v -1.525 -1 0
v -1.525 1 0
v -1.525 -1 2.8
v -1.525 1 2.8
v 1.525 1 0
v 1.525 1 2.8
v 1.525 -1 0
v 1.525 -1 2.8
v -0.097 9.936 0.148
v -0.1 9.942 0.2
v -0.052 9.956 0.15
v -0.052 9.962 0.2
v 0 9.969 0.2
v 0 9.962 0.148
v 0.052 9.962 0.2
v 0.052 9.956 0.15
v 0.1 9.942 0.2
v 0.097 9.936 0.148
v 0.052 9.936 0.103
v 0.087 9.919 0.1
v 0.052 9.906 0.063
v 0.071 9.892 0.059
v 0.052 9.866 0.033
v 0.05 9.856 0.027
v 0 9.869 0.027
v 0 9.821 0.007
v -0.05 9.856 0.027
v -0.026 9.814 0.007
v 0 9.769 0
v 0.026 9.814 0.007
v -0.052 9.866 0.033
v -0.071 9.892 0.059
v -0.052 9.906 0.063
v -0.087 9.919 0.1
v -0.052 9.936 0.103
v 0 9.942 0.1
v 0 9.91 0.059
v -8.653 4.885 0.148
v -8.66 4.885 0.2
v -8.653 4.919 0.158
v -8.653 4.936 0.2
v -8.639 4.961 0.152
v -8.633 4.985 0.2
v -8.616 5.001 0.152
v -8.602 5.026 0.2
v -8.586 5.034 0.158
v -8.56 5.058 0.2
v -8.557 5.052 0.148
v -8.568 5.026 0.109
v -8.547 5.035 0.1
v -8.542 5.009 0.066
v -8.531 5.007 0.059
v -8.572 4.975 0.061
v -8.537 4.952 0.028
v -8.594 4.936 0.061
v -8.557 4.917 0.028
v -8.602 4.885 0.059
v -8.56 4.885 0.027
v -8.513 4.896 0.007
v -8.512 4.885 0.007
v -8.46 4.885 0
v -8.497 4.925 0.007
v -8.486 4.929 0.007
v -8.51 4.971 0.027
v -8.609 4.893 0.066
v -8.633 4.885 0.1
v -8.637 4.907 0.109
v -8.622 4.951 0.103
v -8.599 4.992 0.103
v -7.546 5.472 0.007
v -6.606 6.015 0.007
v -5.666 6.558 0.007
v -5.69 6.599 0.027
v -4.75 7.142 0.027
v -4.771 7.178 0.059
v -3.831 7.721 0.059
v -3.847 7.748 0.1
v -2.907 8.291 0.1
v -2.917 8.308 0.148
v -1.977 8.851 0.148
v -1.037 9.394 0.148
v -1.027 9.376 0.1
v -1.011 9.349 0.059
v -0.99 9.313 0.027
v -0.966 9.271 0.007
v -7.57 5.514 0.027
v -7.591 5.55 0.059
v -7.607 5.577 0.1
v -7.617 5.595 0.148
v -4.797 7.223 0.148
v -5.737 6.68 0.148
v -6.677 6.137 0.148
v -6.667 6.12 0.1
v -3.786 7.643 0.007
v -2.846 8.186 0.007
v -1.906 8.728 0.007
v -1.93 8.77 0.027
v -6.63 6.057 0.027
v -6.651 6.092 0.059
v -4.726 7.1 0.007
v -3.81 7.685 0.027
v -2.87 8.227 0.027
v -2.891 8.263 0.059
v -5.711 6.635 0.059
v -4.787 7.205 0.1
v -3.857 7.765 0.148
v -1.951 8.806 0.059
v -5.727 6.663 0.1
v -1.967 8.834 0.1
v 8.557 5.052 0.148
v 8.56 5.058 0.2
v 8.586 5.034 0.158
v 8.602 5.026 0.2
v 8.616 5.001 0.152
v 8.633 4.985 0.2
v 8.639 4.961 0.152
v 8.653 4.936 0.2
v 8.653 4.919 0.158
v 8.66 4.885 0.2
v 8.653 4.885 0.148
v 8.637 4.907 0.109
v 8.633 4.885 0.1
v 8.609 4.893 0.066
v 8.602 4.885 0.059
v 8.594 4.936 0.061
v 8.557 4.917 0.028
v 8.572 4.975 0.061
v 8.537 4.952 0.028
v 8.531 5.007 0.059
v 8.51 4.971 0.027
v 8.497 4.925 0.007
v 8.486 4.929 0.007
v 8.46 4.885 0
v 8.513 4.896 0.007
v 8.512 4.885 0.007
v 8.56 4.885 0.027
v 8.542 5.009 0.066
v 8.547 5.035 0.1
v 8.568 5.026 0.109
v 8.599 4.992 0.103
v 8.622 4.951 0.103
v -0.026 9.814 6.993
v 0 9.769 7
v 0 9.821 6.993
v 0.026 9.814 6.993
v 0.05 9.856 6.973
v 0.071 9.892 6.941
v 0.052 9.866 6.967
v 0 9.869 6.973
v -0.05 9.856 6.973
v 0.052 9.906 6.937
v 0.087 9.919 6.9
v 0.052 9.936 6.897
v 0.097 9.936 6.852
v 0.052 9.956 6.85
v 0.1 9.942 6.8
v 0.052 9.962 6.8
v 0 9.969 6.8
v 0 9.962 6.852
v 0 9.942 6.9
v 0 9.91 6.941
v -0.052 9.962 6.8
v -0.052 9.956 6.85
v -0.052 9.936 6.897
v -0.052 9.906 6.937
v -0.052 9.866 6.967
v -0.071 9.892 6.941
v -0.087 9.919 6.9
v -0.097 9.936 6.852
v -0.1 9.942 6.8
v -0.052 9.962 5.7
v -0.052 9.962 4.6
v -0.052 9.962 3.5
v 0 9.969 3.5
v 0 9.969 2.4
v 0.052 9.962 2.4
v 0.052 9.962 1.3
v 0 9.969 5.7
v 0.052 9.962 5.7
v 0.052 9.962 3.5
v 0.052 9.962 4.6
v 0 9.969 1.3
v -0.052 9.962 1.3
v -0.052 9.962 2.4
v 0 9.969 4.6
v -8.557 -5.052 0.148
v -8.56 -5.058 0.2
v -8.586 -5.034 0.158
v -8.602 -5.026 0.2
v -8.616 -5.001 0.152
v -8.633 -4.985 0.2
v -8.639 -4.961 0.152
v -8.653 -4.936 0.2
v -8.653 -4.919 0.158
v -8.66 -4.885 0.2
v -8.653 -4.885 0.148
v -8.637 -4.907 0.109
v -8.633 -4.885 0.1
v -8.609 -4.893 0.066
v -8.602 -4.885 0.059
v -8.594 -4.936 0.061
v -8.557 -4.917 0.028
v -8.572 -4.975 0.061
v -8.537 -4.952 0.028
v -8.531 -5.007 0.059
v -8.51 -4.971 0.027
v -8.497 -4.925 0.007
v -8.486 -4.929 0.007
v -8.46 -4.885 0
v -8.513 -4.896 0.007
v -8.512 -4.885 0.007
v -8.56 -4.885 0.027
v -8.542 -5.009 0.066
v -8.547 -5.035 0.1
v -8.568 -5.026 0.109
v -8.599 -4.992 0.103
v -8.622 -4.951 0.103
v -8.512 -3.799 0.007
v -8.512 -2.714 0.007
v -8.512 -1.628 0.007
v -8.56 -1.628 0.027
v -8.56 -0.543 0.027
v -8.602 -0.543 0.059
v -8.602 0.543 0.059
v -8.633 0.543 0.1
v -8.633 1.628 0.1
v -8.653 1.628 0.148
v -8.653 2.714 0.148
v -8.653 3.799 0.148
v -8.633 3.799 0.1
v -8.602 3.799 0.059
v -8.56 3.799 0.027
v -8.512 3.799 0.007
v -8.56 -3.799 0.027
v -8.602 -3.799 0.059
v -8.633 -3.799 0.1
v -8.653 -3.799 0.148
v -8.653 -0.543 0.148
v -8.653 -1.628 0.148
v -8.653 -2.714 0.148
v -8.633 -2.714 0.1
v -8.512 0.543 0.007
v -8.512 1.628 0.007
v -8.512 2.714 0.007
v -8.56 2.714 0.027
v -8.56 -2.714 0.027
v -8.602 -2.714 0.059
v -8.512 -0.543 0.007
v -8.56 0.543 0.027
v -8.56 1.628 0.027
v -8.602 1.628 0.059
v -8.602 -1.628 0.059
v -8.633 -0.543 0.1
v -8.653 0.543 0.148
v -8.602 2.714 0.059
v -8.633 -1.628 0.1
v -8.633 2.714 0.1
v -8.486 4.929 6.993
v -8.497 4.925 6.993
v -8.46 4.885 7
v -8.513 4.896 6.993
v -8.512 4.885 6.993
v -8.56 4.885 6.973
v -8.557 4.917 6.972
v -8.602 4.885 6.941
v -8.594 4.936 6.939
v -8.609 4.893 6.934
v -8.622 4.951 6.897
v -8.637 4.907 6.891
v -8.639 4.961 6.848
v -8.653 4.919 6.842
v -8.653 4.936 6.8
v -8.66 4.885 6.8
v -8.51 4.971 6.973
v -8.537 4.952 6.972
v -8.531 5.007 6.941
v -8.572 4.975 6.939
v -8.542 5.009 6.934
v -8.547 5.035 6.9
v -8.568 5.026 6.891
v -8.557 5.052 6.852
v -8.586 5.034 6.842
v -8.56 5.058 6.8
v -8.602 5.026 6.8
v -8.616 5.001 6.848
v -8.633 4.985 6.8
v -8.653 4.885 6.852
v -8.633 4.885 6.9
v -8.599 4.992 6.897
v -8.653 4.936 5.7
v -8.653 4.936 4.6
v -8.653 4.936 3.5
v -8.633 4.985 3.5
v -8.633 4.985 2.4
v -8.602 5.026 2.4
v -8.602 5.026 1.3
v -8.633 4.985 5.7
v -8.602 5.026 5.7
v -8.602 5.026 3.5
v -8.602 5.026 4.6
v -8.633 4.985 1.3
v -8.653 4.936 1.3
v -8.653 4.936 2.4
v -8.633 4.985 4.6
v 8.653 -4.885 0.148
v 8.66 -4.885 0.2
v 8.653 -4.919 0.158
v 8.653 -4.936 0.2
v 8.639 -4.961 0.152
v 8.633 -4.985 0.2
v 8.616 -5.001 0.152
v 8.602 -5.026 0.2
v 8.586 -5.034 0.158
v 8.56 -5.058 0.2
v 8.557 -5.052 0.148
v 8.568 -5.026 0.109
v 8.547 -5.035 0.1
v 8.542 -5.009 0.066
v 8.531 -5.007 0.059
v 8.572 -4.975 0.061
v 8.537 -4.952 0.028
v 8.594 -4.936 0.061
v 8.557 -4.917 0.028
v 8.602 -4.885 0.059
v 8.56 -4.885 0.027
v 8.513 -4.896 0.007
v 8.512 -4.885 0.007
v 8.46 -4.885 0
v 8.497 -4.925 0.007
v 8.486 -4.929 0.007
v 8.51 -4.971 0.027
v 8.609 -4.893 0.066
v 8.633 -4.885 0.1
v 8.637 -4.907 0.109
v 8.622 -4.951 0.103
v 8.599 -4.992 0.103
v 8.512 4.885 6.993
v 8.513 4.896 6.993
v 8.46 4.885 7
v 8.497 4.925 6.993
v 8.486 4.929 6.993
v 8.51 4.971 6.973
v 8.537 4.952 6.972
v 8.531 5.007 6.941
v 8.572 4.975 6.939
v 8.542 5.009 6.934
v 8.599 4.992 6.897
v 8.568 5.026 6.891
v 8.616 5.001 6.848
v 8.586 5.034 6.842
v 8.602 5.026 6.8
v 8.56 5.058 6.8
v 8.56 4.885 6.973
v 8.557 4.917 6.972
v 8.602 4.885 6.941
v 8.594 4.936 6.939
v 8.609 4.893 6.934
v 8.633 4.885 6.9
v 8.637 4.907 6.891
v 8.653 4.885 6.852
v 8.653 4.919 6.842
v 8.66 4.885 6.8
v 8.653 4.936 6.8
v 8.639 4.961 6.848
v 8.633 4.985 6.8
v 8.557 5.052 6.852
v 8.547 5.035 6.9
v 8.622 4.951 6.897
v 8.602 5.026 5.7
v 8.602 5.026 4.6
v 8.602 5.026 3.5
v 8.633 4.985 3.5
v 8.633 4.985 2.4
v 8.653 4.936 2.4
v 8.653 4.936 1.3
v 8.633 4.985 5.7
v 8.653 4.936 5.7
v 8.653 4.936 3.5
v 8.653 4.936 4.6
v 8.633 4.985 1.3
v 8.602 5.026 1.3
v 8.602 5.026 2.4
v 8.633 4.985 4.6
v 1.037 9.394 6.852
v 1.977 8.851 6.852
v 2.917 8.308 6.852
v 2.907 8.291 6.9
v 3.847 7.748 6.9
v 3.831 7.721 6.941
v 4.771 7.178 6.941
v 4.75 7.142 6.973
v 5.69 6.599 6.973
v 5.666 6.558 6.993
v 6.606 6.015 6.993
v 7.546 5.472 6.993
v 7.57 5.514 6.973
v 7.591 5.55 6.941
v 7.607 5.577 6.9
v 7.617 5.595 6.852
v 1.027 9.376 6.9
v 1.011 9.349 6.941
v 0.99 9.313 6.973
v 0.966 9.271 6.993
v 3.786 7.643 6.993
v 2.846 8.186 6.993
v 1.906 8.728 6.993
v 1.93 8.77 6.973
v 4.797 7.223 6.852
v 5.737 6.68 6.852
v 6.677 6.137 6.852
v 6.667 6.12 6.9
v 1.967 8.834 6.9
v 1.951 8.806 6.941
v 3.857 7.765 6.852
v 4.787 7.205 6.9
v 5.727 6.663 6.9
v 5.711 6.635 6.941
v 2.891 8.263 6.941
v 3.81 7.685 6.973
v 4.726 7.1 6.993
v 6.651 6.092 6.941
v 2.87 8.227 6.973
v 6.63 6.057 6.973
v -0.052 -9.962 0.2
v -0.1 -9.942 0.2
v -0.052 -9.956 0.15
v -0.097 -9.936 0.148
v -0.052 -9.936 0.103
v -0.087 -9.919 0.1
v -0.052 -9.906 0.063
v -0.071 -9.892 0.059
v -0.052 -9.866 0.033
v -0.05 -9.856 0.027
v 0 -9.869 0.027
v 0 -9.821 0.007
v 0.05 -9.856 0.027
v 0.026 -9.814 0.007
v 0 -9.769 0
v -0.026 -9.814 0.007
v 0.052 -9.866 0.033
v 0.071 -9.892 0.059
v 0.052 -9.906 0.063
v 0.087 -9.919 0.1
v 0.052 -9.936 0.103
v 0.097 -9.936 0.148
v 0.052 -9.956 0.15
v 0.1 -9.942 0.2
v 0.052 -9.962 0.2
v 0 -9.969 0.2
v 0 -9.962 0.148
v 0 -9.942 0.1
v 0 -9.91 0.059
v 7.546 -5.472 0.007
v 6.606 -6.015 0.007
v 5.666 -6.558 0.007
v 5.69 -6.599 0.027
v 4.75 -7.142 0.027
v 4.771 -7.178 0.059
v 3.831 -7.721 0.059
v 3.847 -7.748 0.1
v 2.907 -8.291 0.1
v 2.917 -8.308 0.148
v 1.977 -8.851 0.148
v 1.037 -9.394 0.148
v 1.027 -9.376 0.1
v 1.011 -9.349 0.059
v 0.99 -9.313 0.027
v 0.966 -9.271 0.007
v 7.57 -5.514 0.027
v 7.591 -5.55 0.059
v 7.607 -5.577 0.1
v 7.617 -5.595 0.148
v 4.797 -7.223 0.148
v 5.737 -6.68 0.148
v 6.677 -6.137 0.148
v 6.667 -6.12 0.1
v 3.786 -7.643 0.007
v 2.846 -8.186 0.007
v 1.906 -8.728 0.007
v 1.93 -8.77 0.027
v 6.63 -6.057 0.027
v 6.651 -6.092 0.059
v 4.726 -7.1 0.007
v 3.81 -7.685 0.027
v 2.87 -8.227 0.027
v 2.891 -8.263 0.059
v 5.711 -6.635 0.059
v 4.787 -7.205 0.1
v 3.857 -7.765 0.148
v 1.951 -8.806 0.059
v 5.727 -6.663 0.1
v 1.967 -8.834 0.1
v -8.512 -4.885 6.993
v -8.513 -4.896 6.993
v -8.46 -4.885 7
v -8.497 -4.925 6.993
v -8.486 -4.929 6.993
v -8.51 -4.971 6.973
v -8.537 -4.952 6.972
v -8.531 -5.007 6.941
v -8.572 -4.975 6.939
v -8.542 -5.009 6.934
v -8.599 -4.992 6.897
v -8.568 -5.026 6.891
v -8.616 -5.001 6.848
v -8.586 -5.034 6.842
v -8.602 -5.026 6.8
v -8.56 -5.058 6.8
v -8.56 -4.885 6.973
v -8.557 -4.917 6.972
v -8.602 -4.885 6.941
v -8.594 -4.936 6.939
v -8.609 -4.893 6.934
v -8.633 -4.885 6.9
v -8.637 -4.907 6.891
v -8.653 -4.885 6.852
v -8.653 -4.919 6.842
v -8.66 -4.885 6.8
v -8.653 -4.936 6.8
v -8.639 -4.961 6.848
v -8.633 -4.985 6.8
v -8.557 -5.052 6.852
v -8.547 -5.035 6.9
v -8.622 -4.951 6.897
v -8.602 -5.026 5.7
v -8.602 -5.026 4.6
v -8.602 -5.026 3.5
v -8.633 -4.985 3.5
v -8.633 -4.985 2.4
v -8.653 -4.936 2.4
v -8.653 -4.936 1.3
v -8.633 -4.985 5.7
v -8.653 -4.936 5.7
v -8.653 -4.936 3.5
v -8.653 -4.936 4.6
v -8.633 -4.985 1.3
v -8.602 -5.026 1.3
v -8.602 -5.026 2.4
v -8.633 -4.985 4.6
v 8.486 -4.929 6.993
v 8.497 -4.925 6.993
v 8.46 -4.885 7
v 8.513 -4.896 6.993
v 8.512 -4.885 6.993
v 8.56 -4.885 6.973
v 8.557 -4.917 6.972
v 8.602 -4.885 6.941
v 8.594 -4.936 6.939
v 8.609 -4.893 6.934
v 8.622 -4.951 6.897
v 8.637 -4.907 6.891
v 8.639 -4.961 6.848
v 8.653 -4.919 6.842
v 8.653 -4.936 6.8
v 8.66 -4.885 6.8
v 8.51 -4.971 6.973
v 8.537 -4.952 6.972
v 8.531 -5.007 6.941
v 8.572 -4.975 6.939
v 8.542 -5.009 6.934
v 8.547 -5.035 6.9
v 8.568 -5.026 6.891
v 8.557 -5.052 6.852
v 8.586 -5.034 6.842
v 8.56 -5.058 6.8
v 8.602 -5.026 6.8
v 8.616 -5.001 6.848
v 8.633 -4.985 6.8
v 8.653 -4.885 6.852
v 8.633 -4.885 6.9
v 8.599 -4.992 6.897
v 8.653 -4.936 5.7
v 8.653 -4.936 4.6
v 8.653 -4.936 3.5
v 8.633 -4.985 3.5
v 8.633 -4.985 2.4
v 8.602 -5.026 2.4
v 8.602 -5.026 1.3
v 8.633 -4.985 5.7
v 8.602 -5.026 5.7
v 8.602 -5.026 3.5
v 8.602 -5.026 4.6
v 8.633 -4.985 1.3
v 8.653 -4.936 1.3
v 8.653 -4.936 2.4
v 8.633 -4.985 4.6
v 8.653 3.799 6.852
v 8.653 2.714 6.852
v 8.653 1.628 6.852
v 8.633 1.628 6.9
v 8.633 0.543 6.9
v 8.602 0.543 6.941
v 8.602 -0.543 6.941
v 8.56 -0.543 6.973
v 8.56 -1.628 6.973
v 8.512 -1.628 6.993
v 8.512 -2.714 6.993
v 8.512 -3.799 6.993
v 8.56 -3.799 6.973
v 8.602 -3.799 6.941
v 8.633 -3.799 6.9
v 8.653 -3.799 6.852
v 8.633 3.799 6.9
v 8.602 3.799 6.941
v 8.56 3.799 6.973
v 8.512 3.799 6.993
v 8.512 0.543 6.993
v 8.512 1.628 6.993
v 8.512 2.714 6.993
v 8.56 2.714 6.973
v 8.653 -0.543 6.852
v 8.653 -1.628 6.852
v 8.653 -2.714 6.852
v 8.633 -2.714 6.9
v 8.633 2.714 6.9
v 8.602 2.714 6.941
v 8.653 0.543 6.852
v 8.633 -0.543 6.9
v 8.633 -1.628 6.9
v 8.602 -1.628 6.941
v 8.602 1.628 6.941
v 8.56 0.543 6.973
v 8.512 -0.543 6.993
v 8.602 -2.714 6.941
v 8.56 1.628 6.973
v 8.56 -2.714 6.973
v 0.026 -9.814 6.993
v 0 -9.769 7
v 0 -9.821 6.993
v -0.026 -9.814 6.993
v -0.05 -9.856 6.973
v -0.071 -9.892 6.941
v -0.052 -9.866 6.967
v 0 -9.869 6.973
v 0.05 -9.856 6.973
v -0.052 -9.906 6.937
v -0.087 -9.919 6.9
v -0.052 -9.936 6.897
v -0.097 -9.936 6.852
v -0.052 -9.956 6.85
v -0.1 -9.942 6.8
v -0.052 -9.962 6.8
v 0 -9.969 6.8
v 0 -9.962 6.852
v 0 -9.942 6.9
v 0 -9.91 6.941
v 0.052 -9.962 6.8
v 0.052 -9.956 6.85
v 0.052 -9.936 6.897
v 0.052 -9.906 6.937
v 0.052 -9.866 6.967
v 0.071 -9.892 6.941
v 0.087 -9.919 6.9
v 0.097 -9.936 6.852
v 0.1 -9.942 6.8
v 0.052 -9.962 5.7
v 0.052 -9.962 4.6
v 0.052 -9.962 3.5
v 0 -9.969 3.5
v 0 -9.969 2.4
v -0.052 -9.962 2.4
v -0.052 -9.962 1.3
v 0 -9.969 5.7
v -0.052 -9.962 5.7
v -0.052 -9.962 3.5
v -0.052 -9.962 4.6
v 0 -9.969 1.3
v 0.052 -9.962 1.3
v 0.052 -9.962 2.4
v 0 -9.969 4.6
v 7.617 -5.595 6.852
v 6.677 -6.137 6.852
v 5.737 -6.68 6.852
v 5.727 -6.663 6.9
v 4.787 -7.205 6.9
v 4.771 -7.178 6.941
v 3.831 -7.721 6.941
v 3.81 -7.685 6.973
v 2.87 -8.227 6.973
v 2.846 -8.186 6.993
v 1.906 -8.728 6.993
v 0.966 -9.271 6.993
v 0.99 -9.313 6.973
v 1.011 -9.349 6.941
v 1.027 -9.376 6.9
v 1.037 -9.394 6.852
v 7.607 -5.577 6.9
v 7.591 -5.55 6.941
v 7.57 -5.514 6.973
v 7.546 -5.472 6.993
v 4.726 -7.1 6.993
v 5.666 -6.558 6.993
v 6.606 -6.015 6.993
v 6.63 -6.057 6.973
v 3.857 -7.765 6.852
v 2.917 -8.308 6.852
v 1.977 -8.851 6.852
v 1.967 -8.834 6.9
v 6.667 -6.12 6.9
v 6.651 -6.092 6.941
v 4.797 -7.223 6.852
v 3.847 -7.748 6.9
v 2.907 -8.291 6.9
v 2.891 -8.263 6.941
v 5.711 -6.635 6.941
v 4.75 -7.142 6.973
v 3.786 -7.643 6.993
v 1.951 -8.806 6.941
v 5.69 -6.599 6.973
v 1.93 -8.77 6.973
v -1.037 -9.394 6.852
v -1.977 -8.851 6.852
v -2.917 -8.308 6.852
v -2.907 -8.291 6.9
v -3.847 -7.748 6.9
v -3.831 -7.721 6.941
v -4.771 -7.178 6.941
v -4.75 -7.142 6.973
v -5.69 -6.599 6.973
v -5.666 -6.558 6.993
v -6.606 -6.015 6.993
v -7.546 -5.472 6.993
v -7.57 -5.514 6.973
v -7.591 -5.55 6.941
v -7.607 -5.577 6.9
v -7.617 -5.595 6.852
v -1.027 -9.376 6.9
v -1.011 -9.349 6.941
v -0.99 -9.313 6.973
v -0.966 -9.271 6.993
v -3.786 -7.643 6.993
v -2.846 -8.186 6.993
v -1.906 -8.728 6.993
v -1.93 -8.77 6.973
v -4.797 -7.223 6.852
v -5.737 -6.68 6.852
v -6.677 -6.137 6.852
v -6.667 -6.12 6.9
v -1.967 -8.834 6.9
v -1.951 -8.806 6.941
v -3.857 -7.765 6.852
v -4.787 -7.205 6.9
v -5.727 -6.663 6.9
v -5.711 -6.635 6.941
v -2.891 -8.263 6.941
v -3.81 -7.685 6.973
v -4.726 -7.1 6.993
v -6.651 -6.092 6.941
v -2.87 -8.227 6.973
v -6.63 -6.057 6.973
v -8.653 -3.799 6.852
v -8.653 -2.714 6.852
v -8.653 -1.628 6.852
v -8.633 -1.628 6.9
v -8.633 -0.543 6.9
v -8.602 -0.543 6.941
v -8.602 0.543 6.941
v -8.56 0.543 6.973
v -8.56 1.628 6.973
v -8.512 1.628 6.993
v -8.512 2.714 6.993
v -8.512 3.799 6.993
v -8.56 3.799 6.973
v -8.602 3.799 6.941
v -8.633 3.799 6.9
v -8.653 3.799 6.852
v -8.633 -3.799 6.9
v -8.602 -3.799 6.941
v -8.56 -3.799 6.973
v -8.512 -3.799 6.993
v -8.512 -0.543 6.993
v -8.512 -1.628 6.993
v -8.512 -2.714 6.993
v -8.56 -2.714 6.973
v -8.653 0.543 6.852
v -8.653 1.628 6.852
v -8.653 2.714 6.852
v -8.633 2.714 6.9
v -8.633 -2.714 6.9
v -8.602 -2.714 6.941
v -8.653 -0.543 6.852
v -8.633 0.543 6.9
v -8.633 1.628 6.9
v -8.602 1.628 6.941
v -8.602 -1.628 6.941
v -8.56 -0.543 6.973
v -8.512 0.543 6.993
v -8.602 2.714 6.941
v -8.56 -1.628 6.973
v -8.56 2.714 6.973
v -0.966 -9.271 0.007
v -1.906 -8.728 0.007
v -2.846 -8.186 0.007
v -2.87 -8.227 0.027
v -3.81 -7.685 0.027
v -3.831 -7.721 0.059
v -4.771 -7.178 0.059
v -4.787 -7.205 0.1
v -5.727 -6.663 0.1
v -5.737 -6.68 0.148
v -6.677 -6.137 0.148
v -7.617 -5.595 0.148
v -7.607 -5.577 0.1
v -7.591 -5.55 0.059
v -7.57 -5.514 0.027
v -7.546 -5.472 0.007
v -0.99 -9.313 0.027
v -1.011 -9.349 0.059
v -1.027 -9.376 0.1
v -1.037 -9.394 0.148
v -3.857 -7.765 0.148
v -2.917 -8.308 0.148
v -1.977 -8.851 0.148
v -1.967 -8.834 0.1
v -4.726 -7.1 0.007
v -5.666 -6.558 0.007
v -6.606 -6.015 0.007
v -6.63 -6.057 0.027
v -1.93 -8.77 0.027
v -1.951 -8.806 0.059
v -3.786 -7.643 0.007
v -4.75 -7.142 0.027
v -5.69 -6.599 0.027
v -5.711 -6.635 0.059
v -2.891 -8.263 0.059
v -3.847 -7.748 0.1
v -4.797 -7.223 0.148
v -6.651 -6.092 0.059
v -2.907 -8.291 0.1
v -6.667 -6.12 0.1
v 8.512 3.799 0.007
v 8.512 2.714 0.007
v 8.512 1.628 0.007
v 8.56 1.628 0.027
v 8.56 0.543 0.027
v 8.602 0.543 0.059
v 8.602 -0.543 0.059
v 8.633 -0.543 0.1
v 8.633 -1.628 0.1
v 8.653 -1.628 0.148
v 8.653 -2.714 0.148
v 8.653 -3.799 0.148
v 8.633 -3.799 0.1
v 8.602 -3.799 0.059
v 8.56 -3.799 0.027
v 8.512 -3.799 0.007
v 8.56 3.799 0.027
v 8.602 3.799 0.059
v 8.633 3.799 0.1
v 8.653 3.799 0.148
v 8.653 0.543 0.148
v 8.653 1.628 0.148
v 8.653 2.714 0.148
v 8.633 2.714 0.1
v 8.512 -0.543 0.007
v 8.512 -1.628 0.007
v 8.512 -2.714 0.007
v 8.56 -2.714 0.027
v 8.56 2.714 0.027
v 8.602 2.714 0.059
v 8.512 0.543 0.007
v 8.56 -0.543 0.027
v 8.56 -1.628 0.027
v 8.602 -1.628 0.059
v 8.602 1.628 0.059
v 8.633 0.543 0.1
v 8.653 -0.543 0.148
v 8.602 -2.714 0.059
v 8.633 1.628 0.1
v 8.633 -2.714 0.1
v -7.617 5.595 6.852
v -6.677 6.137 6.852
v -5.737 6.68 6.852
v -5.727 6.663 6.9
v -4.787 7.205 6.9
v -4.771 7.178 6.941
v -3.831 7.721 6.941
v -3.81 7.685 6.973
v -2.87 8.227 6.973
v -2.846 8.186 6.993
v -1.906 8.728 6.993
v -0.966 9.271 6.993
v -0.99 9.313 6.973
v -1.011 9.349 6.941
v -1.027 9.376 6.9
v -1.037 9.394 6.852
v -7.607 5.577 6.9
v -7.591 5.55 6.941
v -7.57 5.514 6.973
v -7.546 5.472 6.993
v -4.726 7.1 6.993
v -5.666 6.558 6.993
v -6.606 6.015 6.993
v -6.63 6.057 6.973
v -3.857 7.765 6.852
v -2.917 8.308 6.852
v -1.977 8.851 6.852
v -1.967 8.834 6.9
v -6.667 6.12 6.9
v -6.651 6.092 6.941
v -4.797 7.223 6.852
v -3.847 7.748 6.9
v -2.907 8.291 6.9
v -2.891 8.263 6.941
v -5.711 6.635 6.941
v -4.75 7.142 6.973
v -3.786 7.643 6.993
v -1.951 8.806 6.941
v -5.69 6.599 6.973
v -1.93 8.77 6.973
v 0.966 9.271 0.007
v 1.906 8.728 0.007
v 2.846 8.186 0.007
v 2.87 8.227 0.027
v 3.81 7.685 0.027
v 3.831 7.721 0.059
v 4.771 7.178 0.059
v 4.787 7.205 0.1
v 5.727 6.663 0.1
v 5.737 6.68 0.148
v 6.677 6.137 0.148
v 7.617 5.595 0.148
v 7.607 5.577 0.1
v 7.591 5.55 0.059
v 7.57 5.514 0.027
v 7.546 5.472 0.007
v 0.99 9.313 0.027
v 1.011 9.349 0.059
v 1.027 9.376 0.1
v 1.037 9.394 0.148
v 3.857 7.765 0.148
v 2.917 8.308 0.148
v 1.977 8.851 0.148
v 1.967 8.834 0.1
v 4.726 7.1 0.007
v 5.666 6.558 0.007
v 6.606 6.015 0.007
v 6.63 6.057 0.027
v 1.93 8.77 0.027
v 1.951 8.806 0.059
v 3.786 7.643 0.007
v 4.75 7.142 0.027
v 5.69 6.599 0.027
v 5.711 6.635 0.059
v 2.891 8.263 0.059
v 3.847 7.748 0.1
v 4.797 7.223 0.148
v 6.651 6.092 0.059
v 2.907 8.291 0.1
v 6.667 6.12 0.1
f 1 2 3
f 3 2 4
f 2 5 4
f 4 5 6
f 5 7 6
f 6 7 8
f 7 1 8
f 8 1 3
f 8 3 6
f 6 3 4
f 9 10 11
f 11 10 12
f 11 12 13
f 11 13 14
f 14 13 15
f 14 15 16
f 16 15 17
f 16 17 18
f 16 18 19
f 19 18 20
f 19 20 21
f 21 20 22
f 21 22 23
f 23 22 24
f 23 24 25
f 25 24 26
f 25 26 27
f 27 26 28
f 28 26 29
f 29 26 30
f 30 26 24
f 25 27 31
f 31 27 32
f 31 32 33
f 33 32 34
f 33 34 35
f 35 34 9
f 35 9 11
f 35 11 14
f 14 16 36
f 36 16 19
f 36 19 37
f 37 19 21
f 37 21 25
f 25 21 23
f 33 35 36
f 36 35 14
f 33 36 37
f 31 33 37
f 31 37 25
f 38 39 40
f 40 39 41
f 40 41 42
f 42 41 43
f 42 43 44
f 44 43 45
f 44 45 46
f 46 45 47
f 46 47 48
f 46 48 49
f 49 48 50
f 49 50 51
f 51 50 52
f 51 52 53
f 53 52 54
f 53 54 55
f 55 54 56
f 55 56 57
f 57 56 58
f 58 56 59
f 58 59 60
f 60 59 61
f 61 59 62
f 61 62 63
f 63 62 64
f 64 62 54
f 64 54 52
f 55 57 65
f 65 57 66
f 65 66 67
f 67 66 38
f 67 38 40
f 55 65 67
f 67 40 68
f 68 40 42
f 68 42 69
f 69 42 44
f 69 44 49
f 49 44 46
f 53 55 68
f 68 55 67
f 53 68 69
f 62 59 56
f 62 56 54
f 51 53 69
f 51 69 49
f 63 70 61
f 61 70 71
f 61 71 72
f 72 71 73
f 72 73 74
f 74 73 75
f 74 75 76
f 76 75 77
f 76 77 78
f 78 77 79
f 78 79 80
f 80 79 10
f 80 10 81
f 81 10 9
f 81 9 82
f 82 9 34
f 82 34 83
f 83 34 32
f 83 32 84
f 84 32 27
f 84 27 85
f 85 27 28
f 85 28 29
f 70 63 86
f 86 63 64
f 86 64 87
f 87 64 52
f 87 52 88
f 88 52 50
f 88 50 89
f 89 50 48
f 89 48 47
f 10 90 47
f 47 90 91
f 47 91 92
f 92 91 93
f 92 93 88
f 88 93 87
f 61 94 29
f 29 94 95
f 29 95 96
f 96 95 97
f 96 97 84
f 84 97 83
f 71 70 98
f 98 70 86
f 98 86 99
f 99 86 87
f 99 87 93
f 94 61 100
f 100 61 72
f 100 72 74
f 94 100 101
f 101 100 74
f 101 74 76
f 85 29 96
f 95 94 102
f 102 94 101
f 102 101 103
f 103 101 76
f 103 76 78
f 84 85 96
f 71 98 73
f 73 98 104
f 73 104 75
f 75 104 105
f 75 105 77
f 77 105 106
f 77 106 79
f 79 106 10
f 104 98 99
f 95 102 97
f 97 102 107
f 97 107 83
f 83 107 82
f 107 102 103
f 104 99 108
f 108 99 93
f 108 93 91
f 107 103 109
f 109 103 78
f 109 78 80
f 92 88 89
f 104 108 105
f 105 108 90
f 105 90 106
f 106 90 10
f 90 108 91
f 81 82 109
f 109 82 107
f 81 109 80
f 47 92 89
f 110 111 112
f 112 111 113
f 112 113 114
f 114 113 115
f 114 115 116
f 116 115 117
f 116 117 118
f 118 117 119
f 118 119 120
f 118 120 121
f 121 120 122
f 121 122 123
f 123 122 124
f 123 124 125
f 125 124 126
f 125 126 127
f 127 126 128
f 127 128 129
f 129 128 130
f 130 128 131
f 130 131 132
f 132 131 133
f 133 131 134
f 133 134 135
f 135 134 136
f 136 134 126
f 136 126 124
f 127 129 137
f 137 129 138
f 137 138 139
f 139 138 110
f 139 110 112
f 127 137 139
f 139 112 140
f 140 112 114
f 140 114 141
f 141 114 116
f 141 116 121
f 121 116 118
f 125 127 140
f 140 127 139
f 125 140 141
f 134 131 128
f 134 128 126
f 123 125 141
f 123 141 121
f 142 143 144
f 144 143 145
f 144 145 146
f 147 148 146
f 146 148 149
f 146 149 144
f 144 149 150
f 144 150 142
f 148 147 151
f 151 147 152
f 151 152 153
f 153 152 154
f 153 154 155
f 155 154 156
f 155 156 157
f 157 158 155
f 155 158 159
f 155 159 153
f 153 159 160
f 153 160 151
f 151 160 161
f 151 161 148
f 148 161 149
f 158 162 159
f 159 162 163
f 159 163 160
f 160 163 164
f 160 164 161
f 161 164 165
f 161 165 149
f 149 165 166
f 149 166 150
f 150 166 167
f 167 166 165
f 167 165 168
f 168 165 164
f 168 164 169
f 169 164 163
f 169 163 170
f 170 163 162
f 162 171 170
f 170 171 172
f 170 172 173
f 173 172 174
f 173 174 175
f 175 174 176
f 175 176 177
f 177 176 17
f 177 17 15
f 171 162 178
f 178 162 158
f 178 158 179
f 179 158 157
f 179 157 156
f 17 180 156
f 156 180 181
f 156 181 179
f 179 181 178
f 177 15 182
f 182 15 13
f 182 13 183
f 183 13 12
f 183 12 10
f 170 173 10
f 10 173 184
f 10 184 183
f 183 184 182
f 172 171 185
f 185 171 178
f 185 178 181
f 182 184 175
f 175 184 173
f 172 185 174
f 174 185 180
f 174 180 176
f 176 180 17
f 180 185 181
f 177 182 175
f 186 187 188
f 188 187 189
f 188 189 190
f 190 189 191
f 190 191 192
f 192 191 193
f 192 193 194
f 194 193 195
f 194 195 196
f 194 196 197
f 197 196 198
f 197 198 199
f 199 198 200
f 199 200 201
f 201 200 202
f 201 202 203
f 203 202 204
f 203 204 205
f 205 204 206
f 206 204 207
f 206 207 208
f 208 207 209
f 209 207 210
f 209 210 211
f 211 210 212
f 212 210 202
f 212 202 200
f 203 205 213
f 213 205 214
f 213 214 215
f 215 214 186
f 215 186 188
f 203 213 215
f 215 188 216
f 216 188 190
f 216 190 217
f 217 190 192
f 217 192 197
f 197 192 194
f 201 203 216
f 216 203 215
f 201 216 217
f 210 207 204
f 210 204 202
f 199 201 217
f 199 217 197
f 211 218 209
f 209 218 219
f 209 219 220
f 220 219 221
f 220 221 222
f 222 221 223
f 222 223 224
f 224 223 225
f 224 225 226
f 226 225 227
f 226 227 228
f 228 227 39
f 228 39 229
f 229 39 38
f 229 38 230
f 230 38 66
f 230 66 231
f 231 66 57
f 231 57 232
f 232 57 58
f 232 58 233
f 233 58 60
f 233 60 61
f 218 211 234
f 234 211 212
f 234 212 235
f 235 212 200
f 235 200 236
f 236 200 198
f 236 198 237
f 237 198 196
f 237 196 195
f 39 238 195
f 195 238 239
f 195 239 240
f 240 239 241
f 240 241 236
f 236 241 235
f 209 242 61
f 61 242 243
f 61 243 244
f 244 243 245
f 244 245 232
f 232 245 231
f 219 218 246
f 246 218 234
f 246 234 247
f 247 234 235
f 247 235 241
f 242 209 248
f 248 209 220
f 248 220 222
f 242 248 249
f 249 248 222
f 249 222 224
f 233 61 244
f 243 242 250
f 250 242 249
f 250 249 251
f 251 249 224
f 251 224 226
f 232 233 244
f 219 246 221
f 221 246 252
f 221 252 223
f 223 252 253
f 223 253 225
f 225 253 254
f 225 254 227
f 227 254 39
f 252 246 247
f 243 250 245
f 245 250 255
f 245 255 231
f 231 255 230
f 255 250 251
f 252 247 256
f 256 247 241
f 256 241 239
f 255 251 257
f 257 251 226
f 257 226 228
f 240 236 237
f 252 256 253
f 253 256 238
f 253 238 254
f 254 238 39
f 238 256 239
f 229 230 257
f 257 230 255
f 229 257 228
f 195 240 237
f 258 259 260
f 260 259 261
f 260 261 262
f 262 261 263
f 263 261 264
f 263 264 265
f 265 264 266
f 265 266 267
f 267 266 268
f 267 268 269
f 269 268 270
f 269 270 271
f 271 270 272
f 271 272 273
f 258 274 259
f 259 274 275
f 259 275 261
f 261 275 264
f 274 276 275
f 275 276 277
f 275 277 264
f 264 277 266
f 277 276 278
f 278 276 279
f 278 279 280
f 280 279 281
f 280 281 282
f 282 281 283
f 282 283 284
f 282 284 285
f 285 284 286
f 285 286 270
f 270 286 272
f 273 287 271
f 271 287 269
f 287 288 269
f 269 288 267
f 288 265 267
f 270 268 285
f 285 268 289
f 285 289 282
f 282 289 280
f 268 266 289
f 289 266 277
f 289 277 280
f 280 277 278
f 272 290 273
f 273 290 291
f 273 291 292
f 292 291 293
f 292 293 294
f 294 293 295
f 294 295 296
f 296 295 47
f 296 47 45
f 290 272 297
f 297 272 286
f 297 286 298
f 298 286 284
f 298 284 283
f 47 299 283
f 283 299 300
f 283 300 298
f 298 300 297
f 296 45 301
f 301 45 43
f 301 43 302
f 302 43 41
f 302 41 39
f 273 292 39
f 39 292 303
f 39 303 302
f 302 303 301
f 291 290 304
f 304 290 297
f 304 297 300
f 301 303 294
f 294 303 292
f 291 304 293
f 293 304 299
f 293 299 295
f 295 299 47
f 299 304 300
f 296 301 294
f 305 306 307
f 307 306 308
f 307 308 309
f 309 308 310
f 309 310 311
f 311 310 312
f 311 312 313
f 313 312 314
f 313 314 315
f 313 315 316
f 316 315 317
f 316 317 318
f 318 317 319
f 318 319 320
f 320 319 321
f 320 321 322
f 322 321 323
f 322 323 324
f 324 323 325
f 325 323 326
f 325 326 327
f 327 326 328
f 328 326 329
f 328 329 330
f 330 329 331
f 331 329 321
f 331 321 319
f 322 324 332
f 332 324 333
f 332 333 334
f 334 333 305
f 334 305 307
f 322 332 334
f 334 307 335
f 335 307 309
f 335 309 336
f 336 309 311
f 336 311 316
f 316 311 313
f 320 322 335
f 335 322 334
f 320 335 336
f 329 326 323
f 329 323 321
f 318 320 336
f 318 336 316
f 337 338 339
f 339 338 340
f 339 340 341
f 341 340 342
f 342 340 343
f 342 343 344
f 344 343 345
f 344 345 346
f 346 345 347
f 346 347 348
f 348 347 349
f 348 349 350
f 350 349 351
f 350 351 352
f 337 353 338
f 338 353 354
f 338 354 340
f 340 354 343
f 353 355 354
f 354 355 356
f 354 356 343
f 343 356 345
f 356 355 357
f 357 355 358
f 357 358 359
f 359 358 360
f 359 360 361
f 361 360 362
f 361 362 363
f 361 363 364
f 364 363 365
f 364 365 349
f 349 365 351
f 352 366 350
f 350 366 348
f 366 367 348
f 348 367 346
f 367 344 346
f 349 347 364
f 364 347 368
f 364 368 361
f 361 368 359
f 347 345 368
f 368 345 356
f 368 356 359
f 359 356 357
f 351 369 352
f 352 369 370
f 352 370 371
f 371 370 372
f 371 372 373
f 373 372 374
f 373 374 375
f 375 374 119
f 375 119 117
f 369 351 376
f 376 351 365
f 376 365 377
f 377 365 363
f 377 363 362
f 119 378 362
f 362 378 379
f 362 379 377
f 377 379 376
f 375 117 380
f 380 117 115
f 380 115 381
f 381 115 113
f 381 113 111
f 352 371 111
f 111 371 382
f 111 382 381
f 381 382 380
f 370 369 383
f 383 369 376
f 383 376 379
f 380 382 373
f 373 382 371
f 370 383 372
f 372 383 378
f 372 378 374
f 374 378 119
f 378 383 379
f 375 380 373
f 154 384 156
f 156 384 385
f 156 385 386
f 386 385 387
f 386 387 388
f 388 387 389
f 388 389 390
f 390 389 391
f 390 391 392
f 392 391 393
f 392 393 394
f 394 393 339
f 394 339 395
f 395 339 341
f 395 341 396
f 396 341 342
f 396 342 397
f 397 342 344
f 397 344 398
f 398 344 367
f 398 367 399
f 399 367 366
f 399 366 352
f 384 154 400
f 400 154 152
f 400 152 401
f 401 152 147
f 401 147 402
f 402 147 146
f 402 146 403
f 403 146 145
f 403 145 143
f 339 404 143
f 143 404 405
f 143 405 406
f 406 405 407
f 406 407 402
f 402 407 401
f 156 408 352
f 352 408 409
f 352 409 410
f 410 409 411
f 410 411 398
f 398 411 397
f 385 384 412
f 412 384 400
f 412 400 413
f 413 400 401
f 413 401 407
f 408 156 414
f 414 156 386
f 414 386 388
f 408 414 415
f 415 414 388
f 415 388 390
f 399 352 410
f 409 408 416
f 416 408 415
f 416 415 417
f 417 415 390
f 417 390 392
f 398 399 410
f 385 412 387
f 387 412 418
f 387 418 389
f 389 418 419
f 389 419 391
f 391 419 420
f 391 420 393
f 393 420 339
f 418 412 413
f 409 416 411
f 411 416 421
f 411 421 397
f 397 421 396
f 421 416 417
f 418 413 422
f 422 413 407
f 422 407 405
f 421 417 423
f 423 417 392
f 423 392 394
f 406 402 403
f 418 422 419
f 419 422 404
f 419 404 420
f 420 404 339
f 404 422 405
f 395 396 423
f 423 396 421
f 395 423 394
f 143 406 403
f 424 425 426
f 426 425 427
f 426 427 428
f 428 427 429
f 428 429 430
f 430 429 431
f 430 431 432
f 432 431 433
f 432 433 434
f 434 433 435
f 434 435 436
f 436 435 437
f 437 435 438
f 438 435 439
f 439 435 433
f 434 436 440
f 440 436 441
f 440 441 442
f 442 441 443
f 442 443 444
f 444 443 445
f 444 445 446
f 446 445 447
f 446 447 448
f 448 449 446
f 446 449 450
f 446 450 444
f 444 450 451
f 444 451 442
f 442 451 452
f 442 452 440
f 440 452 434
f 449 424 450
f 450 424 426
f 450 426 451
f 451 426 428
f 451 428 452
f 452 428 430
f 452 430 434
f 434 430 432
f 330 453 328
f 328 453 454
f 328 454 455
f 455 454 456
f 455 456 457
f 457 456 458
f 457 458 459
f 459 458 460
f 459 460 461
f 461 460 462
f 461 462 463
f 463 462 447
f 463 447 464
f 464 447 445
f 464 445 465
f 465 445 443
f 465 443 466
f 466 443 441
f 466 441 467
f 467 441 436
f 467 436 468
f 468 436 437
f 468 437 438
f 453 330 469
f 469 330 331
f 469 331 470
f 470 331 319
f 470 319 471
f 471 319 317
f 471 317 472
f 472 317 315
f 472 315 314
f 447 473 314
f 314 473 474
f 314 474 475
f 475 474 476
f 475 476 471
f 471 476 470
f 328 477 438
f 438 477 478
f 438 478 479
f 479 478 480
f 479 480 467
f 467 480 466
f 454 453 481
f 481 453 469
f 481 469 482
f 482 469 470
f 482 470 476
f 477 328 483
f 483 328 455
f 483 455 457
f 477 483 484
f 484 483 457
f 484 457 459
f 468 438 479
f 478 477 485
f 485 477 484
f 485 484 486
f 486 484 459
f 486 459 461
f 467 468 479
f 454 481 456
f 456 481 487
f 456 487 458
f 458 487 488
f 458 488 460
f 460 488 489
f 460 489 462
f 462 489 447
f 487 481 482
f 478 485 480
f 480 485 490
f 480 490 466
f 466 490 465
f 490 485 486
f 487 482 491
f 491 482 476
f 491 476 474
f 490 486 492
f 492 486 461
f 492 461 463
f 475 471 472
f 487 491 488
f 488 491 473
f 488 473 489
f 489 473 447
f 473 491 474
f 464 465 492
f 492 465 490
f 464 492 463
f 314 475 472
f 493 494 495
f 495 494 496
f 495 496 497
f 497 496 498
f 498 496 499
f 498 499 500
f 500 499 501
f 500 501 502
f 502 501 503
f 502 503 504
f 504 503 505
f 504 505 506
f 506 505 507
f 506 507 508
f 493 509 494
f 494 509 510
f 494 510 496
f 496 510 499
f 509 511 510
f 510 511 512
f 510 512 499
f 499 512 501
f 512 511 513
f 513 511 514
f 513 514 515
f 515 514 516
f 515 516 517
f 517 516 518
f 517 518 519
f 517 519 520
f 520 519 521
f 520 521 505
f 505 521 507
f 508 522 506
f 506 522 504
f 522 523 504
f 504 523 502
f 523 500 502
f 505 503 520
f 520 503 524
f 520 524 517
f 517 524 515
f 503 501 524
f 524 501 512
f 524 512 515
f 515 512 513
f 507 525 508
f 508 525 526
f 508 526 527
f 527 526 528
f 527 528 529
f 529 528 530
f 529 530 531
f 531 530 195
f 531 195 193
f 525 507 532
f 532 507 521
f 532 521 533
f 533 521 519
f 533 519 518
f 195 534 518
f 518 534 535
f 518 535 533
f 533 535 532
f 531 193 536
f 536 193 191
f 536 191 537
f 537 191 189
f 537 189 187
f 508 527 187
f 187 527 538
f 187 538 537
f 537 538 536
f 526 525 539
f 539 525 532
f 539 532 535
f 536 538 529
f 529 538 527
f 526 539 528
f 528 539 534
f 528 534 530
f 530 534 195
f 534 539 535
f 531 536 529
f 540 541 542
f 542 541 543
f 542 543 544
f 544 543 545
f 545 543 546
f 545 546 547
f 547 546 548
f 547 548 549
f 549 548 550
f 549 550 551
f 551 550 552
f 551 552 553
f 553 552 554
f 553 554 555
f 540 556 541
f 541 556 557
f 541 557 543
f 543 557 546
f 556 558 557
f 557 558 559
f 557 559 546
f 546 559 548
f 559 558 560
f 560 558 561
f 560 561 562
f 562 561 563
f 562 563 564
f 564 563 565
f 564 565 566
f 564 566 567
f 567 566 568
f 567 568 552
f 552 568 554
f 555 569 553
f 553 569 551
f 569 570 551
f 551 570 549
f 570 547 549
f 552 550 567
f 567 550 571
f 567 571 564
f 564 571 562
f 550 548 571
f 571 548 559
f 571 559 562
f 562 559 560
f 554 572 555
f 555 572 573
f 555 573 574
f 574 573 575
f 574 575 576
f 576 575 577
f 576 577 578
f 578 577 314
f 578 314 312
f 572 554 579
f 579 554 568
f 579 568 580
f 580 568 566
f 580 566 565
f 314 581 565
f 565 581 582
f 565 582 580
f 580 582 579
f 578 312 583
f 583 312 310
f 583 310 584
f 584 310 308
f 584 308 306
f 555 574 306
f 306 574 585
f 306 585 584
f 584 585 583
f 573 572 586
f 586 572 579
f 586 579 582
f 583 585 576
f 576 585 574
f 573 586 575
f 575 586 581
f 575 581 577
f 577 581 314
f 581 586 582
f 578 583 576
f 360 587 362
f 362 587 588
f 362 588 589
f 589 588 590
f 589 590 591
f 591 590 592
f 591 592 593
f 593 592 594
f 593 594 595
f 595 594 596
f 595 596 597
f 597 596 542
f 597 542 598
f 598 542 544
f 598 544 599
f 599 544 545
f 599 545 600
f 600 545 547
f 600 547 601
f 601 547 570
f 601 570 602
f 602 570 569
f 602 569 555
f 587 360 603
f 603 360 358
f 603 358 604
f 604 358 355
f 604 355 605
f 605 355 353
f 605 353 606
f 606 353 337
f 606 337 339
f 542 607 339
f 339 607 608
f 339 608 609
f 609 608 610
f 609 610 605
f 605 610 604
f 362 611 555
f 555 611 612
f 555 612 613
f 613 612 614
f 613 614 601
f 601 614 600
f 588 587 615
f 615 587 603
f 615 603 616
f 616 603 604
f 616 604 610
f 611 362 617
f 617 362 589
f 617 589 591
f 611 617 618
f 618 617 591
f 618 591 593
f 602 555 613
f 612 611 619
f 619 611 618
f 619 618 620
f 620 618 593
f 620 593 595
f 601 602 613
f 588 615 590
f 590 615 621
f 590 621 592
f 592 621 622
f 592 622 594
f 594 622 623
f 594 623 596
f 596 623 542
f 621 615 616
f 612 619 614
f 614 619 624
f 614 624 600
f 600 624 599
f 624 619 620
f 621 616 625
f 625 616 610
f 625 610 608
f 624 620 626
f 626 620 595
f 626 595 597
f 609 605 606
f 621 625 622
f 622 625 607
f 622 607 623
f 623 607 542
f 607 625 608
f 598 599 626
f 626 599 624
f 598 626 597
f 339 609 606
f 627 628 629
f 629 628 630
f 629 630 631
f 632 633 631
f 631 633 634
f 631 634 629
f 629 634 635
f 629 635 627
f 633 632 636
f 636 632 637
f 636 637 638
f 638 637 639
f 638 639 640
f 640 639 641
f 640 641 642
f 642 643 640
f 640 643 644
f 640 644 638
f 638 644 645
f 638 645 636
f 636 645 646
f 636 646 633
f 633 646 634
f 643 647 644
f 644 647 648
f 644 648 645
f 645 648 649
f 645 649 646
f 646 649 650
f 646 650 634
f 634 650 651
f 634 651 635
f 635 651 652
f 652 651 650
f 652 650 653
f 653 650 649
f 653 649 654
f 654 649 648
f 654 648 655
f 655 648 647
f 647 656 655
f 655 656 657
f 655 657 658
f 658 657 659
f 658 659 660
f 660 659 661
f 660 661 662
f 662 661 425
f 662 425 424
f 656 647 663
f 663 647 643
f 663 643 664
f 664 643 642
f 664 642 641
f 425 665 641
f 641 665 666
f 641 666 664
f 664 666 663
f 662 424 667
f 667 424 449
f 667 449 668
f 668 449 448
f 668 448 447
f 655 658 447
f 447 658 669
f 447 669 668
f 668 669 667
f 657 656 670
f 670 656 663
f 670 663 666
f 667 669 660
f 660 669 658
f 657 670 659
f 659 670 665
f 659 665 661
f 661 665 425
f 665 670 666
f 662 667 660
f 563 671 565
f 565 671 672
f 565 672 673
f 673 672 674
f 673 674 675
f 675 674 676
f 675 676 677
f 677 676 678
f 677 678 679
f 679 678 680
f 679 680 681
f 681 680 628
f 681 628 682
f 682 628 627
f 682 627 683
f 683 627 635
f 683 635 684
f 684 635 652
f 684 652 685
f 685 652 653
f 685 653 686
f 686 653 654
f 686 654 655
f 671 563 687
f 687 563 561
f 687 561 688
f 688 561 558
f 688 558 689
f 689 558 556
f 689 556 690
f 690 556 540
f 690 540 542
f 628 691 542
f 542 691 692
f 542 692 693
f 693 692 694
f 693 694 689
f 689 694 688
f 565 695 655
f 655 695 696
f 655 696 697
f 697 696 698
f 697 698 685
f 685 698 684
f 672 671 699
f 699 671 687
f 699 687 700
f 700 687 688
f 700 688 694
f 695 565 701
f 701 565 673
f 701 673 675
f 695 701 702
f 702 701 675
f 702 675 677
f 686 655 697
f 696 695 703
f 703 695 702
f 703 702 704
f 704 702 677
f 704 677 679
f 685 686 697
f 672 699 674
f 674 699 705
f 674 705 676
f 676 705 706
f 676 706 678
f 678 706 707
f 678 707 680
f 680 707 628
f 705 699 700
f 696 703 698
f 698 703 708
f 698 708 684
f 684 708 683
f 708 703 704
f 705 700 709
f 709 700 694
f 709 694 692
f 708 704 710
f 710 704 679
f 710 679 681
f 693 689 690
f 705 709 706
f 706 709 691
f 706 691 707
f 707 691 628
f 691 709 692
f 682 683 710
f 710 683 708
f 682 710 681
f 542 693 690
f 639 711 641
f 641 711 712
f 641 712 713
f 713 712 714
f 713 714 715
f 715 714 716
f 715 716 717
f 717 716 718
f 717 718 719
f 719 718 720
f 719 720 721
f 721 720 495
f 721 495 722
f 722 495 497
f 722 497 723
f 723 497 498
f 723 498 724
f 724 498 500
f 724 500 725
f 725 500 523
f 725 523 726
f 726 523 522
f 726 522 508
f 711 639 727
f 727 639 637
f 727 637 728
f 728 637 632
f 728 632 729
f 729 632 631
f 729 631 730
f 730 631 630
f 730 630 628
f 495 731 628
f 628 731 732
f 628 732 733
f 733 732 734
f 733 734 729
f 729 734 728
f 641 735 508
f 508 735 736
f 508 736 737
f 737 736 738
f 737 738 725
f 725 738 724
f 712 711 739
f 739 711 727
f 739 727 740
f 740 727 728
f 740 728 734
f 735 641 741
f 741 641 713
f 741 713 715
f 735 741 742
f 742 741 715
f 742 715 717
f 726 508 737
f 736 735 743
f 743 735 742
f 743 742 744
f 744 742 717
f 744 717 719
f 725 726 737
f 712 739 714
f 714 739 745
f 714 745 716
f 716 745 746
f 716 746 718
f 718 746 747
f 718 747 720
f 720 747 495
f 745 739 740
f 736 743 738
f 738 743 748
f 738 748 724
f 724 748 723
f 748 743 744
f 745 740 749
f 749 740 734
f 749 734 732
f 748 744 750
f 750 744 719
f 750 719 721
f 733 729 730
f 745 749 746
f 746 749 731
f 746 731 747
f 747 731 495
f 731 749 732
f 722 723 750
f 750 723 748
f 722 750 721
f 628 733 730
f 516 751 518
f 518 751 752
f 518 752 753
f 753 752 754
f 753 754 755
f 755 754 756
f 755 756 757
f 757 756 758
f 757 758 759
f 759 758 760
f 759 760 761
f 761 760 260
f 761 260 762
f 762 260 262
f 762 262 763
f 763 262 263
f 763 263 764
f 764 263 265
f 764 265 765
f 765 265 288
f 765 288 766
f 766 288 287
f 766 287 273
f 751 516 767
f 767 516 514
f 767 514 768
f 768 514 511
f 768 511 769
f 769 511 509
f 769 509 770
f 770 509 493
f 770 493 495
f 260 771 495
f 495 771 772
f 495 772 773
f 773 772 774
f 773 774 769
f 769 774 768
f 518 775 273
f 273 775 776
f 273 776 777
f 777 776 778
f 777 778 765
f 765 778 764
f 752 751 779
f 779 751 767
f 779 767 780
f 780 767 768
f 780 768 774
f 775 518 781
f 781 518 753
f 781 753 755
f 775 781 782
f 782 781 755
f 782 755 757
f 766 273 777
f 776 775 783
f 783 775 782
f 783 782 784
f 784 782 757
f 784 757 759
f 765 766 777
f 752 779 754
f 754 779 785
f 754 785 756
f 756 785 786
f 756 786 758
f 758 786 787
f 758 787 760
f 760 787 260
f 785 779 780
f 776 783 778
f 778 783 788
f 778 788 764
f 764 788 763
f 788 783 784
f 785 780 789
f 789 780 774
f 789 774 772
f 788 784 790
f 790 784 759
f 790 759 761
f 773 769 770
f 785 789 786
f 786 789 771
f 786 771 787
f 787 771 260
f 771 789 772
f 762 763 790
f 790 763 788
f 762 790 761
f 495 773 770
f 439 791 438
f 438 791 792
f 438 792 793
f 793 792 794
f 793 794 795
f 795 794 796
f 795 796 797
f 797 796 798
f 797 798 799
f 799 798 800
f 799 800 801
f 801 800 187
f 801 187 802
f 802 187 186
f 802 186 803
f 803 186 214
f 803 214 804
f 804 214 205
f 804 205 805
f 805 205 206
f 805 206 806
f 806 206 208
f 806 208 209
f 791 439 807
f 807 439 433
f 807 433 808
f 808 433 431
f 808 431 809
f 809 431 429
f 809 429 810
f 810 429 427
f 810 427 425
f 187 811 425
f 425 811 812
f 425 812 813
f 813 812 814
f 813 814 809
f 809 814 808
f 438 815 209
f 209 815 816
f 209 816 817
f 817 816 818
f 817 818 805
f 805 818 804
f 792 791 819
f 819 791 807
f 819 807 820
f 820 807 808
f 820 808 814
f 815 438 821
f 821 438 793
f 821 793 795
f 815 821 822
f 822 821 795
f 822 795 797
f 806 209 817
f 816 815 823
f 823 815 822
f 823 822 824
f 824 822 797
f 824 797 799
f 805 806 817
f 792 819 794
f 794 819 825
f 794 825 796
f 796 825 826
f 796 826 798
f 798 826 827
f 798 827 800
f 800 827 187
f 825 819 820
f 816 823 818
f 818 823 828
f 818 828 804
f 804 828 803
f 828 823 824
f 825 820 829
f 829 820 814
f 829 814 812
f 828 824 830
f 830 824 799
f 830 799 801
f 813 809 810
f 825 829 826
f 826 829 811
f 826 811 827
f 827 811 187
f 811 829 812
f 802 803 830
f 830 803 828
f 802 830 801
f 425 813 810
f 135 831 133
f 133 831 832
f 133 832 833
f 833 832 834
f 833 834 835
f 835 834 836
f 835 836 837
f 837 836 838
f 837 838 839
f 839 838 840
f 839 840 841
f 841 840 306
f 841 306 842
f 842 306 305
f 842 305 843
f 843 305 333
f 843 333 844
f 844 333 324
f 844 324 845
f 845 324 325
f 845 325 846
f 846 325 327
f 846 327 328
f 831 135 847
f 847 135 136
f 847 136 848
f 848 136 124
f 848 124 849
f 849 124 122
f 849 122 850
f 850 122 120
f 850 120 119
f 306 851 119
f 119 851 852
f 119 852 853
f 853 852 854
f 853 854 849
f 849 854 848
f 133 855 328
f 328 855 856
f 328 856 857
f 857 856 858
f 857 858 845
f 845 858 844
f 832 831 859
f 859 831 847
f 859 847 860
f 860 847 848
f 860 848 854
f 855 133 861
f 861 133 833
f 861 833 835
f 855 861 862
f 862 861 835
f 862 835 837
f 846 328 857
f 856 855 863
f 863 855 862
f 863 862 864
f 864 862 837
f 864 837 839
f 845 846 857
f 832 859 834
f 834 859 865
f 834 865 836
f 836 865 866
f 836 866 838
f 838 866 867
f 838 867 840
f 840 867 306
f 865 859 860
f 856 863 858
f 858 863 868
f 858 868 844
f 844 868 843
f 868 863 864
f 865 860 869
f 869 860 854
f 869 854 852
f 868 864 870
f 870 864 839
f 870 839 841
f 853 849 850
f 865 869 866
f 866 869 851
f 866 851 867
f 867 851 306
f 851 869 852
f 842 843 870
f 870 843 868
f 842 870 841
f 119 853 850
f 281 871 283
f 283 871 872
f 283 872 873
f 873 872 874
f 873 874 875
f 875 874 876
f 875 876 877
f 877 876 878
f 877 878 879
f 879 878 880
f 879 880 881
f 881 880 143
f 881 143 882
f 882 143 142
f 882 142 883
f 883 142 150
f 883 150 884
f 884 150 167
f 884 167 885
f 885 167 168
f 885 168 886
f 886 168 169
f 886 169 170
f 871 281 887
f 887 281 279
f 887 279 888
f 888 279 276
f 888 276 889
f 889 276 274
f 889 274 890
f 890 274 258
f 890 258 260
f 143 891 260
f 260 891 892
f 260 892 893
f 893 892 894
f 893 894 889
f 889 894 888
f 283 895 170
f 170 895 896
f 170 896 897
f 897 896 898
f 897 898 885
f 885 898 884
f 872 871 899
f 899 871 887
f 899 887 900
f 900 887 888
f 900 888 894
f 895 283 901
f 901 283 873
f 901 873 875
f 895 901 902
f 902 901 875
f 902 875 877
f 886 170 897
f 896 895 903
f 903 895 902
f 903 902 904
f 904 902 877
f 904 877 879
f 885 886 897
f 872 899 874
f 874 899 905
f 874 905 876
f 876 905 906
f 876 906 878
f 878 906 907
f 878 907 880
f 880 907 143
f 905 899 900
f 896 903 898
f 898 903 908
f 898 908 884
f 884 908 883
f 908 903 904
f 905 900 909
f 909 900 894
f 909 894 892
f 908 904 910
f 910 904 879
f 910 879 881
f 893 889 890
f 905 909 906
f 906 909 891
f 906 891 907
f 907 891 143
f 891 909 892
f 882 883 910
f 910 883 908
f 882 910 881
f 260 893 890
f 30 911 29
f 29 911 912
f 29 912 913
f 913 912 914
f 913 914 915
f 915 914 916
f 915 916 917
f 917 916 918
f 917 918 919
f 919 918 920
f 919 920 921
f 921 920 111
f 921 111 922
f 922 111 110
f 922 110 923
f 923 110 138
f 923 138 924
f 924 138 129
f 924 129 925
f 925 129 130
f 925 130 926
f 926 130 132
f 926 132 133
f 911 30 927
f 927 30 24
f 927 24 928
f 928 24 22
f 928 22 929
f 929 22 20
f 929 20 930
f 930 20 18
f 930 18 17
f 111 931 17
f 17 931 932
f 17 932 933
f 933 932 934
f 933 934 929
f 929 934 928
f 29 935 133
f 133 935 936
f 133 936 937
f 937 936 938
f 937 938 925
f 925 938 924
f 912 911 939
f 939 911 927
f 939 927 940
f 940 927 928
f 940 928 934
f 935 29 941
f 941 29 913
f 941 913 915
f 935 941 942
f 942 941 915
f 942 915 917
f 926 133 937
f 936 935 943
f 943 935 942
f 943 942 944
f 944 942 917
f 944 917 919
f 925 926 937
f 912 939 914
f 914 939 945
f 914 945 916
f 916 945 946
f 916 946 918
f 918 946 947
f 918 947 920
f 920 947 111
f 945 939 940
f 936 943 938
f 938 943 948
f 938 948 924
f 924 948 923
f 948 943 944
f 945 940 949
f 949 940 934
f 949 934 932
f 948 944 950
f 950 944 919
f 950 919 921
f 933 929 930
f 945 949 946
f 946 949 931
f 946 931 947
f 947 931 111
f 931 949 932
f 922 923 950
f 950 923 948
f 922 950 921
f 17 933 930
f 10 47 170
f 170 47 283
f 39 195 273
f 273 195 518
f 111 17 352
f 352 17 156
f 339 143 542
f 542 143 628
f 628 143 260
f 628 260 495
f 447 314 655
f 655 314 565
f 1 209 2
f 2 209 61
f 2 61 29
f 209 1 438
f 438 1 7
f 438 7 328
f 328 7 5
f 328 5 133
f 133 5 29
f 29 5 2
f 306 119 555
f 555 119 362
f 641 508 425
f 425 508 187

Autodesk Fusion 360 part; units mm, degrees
sketch "Sketch1" plane through (0, 0, 0) normal (0, 0, 1) x (1, 0, 0)
  line L0 (8, -8) -> (-8, -8)
  line L1 (-8, -8) -> (-8, 8)
  line L2 (-8, 8) -> (8, 8)
  line L3 (8, 8) -> (8, -8)
  line L4 (8, -8) -> (-8, 8) construction
  line L5 (-8, -8) -> (8, 8) construction
  line L6 (1.525, 1) -> (-1.525, 1)
  line L7 (-1.525, 1) -> (-1.525, -1)
  line L8 (-1.525, -1) -> (1.525, -1)
  line L9 (1.525, -1) -> (1.525, 1)
  line L10 (1.525, 1) -> (-1.525, -1) construction
  line L11 (-1.525, 1) -> (1.525, -1) construction
  line L12 (1.475, 1) -> (-1.475, 1)
  line L13 (-1.475, 1) -> (-1.475, -1)
  line L14 (-1.475, -1) -> (1.475, -1)
  line L15 (1.475, -1) -> (1.475, 1)
  line L16 (1.475, 1) -> (-1.475, -1) construction
  line L17 (-1.475, 1) -> (1.475, -1) construction
  line L18 (8.6603, -5) -> (8.6603, 5)
  line L19 (8.6603, 5) -> (0, 10)
  line L20 (0, 10) -> (-8.6603, 5)
  line L21 (-8.6603, 5) -> (-8.6603, -5)
  line L22 (-8.6603, -5) -> (0, -10)
  line L23 (0, -10) -> (8.6603, -5)
  dimension "d1" = 16
  dimension "d2" = 16
  dimension "d14" = 3.05
  dimension "d15" = 2
  dimension "d16" = 2.95
  dimension "d17" = 2
  dimension "d20" = 10
extrude "Extrude1" add sketch "Sketch1" along normal blind 7 contours L0 L22 L23 | L0 L1 L2 L3 L19 L20 L22 L23 | L3 L18 L19 L23 | L1 L20 L21 L22 | L2 L19 L20 | L6 L8 L9 L15 | L6 L8 L12 L13 L14 L15 | L6 L7 L8 L13
fillet "Fillet1" radius 0.2 7 faces at (0, -3.3333, 7) (2.8868, -8.3333, 2.3333) (8.6603, -1.6667, 4.6667) (-5.7735, -6.6667, 4.6667) (-8.6603, 1.6667, 4.6667) (-2.8868, 8.3333, 2.3333) (5.7735, 6.6667, 4.6667)
extrude "Extrude4" cut sketch "Sketch1" along normal blind 2.8 contours L6 L8 L9 L15 | L6 L8 L12 L13 L14 L15 | L6 L7 L8 L13
